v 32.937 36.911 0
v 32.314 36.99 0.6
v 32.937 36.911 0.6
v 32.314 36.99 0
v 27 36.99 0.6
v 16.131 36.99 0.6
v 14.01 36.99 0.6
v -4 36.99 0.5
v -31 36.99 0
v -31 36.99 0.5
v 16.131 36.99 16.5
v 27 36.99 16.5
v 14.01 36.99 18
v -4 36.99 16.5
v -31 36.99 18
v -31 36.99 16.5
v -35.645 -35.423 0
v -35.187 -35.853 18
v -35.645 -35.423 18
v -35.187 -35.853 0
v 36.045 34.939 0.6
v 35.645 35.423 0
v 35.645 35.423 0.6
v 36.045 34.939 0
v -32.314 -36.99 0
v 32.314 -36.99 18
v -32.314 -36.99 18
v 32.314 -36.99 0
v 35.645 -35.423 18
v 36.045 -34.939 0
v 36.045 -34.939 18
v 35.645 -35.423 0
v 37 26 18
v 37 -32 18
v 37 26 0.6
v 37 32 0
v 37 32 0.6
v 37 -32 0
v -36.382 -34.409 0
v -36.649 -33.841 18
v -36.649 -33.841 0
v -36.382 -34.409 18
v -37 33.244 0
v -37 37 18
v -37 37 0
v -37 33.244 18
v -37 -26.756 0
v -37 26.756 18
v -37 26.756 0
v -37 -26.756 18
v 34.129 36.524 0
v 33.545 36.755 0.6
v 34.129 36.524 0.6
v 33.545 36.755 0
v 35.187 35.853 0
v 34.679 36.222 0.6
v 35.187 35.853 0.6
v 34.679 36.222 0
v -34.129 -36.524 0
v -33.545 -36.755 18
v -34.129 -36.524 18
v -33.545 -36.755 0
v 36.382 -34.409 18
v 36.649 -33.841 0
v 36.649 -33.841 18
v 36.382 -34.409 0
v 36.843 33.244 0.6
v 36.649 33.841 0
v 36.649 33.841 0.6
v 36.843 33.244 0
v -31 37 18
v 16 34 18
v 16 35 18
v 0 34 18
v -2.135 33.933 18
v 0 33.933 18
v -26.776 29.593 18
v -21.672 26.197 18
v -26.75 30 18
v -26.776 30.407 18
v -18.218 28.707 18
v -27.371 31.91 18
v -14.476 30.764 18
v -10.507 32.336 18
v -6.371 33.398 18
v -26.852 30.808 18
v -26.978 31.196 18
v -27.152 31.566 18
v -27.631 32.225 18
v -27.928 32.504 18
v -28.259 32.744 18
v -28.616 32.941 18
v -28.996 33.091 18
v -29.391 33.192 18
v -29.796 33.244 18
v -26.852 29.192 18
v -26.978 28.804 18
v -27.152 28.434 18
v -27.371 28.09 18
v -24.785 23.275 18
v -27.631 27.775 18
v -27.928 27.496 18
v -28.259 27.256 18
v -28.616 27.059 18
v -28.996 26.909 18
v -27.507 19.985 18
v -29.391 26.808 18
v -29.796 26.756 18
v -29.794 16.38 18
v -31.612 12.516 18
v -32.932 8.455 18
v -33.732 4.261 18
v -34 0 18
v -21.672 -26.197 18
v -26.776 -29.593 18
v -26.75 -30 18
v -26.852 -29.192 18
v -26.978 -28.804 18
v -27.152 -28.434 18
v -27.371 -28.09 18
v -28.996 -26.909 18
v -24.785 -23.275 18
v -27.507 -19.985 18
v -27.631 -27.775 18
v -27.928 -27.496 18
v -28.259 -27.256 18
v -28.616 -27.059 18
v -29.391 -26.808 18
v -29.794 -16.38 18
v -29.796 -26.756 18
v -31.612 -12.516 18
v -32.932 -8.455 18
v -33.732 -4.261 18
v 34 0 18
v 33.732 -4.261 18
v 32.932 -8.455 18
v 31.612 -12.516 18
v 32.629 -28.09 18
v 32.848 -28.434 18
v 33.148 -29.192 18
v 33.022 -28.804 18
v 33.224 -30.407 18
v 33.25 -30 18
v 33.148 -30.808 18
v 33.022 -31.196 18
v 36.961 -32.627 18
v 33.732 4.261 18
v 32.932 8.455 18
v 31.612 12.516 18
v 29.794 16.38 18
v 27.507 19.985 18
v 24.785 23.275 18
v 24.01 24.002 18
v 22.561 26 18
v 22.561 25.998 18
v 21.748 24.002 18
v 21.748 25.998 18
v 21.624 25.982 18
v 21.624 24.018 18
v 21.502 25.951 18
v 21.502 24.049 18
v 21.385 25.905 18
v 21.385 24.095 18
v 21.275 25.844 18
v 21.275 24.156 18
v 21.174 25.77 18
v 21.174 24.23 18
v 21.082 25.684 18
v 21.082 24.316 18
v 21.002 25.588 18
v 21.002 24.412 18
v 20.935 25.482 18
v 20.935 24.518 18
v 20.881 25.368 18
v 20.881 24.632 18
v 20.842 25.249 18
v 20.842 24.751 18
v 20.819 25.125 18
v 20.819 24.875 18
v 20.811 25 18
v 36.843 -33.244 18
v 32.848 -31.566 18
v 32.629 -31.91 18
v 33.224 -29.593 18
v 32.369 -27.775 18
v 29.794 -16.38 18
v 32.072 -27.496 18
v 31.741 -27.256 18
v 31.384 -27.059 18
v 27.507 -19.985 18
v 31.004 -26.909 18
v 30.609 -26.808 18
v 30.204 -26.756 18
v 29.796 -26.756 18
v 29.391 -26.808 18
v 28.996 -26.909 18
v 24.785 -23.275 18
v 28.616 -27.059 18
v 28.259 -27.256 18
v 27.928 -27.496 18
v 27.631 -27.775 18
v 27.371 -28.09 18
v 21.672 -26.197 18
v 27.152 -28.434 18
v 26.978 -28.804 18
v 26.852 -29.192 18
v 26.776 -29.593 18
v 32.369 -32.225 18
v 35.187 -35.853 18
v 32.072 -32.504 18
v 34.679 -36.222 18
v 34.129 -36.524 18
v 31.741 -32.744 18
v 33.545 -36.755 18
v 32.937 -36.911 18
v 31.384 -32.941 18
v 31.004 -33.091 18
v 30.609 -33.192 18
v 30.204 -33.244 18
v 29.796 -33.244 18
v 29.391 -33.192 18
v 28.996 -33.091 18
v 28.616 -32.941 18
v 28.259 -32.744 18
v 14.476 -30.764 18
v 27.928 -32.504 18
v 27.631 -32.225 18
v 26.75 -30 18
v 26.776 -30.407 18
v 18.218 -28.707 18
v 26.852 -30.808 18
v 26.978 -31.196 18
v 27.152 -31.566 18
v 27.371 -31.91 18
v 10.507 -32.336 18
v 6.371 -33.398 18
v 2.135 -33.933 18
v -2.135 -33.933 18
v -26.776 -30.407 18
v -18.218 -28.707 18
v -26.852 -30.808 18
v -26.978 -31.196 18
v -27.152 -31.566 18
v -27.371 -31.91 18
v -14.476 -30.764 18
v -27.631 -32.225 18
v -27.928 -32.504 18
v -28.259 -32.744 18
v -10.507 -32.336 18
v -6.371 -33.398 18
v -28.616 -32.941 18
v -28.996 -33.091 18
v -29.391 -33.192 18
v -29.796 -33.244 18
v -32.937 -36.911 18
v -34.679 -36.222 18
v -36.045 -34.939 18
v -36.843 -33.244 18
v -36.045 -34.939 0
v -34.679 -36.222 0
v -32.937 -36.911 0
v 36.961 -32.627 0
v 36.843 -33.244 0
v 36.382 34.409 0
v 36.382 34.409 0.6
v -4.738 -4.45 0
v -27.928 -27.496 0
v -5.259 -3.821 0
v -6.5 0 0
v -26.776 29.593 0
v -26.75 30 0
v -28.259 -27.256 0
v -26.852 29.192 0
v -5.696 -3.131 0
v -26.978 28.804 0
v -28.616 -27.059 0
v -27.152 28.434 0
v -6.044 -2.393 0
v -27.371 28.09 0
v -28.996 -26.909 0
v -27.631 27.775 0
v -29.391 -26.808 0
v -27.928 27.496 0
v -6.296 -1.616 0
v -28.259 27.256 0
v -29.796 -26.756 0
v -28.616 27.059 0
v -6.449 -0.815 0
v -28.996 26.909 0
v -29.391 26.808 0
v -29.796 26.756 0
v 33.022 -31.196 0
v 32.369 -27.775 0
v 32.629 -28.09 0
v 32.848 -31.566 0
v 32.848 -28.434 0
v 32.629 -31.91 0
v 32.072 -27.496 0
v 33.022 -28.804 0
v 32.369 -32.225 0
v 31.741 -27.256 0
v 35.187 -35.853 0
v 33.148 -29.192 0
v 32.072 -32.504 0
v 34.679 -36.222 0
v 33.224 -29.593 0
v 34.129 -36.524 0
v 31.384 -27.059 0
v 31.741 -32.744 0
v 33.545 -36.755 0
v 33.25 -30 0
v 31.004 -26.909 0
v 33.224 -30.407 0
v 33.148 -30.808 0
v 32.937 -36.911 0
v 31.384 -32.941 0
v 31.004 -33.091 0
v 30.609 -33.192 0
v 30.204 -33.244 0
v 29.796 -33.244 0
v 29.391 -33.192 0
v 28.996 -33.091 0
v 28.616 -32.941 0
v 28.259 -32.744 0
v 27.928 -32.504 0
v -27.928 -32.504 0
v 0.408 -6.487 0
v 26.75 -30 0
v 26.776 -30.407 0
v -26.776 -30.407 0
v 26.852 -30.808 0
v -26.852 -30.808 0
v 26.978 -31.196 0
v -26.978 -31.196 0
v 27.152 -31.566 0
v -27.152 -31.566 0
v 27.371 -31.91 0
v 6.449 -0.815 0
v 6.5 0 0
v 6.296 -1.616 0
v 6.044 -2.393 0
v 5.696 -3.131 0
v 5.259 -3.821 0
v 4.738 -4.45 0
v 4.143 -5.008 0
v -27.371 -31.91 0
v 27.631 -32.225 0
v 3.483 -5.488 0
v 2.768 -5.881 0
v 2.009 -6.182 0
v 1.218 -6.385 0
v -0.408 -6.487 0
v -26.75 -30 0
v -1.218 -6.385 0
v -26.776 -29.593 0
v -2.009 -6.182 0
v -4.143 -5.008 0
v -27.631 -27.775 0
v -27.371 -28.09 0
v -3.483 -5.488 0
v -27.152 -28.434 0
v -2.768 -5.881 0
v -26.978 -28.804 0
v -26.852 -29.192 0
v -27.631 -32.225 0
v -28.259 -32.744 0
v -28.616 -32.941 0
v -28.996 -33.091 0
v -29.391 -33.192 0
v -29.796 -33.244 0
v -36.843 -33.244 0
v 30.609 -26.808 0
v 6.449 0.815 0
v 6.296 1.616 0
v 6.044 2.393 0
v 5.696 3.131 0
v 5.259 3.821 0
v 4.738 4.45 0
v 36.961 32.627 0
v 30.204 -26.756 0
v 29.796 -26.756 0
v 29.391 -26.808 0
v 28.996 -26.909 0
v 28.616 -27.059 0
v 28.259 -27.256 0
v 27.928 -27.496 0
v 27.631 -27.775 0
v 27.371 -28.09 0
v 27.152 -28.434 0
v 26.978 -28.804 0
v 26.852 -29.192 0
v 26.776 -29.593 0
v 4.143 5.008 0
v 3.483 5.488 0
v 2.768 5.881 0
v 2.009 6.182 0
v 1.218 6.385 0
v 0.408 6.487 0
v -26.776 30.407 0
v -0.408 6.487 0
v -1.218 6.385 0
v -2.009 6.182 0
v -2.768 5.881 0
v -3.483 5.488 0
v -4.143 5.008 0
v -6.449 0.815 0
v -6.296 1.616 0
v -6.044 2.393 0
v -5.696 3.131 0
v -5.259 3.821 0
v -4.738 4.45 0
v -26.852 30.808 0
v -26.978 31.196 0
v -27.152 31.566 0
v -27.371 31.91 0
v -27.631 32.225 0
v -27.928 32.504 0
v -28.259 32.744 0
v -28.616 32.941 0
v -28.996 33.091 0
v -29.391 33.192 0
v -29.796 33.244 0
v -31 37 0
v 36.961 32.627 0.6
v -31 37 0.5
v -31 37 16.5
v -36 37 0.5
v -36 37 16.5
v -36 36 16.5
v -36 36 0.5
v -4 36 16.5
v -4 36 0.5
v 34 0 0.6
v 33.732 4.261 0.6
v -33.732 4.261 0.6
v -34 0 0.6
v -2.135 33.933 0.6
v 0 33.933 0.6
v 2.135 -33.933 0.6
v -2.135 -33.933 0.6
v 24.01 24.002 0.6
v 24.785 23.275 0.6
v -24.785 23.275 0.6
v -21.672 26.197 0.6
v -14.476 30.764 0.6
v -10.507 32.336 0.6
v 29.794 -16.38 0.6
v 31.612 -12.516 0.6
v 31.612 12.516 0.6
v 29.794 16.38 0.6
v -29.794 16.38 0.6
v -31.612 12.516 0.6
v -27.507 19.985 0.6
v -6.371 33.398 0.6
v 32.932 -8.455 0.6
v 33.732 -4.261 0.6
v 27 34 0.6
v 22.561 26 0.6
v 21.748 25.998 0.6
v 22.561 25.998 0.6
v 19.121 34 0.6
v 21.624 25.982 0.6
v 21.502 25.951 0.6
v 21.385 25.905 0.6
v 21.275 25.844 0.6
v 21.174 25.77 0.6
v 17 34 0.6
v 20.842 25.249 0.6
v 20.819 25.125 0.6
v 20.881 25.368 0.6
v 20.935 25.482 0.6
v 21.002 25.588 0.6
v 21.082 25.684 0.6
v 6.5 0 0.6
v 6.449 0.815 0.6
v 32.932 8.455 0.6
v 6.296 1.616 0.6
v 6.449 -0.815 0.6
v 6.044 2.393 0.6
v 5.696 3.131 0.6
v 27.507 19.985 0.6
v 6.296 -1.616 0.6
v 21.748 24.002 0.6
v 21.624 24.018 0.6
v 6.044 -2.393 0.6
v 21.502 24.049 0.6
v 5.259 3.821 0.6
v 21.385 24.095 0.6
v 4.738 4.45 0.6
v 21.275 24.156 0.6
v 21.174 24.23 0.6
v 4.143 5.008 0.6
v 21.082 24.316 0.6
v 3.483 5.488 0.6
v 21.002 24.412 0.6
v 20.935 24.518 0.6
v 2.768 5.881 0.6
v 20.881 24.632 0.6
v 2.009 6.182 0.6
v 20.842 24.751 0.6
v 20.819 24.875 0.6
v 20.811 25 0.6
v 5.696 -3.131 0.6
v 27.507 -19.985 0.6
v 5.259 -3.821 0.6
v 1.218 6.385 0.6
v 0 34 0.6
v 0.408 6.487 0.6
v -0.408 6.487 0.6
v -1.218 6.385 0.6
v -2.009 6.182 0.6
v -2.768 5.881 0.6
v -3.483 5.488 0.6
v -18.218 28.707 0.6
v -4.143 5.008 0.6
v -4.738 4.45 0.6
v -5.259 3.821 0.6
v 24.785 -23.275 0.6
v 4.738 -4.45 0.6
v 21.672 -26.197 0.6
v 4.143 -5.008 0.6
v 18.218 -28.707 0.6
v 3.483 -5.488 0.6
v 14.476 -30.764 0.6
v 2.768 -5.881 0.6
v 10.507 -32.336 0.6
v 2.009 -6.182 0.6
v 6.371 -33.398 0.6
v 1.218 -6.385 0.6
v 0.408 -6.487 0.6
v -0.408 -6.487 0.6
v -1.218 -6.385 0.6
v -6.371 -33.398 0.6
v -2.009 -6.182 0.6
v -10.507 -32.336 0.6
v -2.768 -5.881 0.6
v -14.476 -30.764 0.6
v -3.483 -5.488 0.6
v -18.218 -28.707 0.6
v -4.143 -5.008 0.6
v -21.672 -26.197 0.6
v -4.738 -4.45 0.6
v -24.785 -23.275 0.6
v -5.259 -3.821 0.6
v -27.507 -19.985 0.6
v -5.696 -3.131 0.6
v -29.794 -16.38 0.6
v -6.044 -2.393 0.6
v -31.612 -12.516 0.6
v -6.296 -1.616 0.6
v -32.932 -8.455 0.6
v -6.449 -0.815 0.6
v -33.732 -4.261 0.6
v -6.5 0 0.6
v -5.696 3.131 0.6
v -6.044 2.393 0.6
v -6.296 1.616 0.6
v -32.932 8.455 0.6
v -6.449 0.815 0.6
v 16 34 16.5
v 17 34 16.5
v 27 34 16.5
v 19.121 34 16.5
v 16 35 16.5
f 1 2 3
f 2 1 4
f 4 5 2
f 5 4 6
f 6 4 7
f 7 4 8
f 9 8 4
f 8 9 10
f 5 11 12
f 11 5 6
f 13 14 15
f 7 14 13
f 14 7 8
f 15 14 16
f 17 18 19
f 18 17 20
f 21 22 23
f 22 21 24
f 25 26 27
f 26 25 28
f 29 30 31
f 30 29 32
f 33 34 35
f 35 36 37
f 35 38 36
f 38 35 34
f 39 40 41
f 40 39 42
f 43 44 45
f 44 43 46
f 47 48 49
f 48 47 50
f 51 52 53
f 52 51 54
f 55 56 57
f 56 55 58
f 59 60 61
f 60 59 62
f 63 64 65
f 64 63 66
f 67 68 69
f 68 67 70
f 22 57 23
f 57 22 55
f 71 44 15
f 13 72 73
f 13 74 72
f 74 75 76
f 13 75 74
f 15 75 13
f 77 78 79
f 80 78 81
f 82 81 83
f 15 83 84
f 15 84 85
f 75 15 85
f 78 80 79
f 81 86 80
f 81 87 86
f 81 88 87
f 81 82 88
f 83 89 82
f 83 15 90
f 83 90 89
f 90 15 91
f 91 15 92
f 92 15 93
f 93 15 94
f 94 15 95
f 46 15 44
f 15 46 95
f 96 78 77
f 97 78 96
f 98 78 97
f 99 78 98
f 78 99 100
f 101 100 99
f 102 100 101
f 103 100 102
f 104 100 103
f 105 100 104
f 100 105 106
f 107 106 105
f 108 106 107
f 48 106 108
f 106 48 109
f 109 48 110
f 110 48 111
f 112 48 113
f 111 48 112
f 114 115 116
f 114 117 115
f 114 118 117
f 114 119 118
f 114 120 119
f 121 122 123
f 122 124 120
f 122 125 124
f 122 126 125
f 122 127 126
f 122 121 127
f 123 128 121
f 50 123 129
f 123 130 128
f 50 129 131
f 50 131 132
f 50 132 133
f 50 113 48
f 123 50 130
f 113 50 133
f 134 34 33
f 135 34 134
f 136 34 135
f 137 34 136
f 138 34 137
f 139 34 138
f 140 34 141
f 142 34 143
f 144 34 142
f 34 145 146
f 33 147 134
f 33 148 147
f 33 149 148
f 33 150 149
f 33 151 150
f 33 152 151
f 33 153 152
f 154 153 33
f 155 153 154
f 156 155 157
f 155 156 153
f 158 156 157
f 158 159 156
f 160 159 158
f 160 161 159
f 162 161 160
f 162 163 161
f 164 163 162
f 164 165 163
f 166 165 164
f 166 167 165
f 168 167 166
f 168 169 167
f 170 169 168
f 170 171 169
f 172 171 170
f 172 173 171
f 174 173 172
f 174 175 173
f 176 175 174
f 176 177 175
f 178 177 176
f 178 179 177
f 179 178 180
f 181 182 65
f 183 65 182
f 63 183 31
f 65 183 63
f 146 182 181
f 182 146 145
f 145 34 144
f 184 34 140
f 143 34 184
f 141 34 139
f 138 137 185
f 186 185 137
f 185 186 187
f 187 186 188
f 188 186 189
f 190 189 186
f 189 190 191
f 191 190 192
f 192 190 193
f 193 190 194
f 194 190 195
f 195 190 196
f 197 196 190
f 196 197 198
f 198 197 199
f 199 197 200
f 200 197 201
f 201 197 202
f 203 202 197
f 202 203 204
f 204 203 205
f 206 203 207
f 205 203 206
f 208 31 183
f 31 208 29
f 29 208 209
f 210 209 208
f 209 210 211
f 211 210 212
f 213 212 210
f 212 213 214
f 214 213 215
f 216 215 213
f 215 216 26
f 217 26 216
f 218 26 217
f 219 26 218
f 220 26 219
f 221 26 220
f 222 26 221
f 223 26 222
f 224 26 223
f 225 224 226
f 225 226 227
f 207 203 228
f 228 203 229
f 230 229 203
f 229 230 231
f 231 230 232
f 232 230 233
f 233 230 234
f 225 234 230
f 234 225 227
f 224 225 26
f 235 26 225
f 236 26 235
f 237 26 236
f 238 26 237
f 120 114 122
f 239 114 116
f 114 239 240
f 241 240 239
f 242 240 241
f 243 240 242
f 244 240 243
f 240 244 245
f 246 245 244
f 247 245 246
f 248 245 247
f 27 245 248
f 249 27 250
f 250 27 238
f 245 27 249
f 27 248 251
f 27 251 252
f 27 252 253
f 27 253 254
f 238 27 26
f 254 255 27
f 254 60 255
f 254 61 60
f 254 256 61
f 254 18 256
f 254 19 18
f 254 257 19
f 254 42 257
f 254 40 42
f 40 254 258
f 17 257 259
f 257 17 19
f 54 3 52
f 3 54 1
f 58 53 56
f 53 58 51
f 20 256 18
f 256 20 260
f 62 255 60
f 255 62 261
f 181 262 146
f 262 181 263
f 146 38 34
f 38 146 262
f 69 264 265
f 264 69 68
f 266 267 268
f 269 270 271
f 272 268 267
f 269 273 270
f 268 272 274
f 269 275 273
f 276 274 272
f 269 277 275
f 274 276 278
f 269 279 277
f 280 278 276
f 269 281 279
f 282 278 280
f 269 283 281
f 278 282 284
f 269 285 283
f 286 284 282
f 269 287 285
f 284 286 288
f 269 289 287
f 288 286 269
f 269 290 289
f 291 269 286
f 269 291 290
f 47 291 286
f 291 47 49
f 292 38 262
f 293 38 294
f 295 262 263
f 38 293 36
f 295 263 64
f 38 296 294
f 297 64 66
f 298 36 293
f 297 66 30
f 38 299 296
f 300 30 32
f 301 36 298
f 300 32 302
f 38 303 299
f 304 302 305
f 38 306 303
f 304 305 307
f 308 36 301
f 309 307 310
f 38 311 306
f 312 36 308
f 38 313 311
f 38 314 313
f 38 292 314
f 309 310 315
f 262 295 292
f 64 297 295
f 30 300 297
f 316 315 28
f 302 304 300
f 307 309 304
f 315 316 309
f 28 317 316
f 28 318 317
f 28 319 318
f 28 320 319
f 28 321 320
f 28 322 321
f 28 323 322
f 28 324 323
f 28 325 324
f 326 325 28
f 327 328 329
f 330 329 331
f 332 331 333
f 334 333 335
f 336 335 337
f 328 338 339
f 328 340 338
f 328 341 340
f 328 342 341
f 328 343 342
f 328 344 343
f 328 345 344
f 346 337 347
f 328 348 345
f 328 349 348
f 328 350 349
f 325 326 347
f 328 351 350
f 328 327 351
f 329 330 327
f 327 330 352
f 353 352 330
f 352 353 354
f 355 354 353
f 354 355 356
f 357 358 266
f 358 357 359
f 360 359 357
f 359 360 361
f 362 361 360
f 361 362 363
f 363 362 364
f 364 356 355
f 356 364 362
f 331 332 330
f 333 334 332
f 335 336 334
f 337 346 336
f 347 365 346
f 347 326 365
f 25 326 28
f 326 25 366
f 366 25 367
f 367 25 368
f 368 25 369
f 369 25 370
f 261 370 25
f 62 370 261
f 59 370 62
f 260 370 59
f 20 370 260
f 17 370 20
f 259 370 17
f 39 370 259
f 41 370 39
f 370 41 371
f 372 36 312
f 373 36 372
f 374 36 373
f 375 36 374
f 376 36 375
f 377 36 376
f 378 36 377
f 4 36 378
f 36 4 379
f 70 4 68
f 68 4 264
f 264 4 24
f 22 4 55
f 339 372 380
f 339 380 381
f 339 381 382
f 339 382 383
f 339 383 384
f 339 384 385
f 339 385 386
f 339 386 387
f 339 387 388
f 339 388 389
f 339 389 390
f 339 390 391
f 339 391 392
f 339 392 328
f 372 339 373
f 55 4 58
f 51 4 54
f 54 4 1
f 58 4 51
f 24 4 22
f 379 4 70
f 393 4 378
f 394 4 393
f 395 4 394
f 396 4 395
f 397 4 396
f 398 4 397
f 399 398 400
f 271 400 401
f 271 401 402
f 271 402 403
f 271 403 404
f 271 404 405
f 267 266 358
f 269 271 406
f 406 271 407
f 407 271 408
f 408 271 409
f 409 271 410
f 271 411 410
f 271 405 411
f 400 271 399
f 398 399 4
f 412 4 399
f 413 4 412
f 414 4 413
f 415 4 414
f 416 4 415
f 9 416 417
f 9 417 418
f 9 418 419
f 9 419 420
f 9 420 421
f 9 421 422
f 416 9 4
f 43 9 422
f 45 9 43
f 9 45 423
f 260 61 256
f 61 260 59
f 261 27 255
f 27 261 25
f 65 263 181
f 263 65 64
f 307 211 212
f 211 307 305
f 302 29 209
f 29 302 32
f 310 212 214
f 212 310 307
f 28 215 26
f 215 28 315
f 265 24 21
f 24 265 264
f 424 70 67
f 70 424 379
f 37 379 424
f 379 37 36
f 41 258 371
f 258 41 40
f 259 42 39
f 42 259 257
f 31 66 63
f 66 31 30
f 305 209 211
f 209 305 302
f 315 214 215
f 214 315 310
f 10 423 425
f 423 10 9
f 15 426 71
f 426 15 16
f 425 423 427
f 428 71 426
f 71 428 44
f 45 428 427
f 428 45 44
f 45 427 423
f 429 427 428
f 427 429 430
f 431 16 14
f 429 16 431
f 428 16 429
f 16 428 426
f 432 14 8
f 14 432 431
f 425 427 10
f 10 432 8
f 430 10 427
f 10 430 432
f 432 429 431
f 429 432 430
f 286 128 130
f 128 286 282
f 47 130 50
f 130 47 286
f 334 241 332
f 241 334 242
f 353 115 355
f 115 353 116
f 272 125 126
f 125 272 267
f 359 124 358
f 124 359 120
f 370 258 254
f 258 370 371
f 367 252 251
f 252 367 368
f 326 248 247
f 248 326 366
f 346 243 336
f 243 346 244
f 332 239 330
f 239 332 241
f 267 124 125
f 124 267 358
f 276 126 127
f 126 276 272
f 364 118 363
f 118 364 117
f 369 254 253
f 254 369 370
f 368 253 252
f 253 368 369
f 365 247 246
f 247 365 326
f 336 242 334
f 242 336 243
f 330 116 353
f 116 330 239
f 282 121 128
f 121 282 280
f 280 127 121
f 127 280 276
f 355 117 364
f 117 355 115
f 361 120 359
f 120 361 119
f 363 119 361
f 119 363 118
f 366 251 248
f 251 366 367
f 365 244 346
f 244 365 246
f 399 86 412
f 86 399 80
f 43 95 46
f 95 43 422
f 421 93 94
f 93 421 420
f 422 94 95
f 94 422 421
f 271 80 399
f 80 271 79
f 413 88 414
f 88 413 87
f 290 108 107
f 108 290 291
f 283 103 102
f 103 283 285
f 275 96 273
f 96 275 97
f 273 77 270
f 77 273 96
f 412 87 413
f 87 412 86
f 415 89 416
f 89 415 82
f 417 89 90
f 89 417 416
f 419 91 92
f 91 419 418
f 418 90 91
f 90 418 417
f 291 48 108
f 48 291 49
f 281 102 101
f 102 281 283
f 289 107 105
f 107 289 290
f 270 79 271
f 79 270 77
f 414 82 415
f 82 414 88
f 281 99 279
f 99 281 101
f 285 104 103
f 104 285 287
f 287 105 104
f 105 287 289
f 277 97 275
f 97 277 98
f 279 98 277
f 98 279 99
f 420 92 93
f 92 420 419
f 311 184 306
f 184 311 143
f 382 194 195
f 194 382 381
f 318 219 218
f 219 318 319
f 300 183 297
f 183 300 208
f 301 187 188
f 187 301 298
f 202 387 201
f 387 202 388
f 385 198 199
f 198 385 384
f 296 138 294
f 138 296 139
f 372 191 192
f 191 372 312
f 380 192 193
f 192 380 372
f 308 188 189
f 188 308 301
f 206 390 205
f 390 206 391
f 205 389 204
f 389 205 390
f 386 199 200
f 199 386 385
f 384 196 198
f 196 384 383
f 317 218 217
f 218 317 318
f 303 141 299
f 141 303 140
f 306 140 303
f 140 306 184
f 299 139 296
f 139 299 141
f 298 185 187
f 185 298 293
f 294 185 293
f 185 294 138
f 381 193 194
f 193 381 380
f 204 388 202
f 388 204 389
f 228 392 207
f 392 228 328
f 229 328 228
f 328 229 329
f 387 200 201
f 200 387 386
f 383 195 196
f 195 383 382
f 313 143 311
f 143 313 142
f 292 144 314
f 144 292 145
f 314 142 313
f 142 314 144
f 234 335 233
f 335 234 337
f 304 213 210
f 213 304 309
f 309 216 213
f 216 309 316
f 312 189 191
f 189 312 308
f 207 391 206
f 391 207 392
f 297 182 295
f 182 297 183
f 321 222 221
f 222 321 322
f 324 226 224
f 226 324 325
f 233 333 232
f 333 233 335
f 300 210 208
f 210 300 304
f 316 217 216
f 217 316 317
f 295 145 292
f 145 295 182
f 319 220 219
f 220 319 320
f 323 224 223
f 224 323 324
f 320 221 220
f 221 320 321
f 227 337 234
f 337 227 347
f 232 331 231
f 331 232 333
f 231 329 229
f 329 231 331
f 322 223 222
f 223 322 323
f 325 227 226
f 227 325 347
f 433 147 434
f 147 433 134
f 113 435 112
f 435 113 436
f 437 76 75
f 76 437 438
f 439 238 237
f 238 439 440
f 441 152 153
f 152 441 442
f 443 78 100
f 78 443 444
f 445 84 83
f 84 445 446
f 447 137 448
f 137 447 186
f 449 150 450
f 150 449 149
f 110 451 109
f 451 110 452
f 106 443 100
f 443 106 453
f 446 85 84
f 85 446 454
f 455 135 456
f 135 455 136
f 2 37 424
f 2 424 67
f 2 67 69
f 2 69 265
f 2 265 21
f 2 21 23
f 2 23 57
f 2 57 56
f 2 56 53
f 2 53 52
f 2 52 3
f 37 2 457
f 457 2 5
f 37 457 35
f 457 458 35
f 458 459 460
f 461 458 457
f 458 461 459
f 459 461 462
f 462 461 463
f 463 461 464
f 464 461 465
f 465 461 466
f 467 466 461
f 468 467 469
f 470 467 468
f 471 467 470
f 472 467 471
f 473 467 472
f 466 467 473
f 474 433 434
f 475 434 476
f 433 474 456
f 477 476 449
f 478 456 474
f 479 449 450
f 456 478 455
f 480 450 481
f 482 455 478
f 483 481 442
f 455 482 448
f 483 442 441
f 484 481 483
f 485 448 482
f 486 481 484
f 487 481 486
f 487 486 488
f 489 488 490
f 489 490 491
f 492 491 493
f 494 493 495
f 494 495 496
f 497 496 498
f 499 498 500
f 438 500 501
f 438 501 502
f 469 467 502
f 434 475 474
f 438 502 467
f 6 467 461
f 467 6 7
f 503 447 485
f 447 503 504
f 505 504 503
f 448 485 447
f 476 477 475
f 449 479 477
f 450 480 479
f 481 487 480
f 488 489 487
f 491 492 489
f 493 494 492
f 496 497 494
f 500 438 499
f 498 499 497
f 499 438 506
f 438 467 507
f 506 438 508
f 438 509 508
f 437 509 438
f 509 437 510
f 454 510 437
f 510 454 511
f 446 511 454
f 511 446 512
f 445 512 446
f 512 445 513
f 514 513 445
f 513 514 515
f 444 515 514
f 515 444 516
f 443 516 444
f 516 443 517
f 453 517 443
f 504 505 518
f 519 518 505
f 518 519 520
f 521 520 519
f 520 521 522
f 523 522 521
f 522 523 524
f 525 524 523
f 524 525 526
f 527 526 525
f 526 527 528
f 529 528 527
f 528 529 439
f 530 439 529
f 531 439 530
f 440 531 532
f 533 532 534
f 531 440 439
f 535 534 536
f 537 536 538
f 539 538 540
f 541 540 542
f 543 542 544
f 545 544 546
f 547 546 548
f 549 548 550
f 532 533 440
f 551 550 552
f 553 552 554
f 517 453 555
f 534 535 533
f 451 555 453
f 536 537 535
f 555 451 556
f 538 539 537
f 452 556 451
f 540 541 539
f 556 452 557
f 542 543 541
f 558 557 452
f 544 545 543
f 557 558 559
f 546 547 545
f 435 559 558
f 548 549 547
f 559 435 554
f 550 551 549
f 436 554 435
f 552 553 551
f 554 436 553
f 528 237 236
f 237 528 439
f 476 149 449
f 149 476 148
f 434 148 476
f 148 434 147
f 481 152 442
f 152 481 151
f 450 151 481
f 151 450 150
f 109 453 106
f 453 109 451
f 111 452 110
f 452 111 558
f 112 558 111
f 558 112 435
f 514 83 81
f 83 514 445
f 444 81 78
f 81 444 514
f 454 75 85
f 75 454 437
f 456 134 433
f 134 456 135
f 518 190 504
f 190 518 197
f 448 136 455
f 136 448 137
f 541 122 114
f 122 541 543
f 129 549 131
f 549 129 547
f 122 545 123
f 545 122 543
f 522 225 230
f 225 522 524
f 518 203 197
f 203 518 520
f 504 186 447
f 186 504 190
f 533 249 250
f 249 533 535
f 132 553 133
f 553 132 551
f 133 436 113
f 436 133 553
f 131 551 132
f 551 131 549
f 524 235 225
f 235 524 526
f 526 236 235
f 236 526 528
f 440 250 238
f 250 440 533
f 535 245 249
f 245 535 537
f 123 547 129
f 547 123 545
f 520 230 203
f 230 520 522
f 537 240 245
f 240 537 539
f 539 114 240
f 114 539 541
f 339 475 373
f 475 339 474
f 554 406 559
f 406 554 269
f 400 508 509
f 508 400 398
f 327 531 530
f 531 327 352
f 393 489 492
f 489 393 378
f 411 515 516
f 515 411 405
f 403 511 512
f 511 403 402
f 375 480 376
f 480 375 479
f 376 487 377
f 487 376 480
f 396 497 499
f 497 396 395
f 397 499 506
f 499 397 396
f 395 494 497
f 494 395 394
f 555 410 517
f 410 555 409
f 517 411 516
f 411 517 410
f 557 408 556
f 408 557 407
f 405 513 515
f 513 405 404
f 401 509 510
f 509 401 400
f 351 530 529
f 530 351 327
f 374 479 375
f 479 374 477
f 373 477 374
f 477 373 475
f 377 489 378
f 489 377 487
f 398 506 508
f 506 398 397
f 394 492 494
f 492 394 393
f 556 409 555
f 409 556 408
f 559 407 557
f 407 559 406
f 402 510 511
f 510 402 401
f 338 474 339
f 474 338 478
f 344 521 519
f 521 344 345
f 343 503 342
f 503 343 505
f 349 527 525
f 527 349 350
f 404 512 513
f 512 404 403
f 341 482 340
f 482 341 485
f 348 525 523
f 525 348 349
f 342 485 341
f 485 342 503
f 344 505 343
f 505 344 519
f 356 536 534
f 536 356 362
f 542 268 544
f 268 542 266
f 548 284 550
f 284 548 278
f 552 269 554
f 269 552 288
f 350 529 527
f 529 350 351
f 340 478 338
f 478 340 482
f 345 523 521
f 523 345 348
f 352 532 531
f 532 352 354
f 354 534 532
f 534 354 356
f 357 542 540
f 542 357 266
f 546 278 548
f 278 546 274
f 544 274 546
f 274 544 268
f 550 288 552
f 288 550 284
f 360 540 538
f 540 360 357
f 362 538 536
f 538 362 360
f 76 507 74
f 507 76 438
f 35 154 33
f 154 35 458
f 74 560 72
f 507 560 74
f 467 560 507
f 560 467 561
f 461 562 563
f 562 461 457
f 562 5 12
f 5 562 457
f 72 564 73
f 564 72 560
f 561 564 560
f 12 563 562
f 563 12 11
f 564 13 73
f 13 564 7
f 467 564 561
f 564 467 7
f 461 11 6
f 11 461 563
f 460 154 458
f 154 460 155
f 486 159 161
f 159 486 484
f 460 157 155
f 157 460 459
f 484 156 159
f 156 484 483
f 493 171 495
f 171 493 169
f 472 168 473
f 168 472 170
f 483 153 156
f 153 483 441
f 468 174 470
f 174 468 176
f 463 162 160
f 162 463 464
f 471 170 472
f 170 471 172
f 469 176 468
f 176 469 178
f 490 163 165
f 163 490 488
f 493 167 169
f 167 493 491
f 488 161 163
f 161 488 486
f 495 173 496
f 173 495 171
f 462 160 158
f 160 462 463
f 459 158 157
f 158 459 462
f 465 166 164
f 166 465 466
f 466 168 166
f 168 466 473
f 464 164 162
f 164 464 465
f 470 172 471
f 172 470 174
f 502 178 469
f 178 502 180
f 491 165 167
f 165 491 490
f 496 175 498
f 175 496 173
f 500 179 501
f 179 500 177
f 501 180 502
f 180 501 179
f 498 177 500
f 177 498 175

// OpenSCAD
$fn = 50;


union() {
	difference() {
		union() {
			translate(v = [0, 0, 0]) {
				rotate(a = [0, 0, 0]) {
					hull() {
						translate(v = [-32.0000000000, 32.0000000000, 0]) {
							rotate(a = [0, 0, 0]) {
								translate(v = [0, 0, 0]) {
									rotate(a = [0, 0, 0]) {
										cylinder(h = 18, r = 5);
									}
								}
							}
						}
						translate(v = [32.0000000000, 32.0000000000, 0]) {
							rotate(a = [0, 0, 0]) {
								translate(v = [0, 0, 0]) {
									rotate(a = [0, 0, 0]) {
										cylinder(h = 18, r = 5);
									}
								}
							}
						}
						translate(v = [-32.0000000000, -32.0000000000, 0]) {
							rotate(a = [0, 0, 0]) {
								translate(v = [0, 0, 0]) {
									rotate(a = [0, 0, 0]) {
										cylinder(h = 18, r = 5);
									}
								}
							}
						}
						translate(v = [32.0000000000, -32.0000000000, 0]) {
							rotate(a = [0, 0, 0]) {
								translate(v = [0, 0, 0]) {
									rotate(a = [0, 0, 0]) {
										cylinder(h = 18, r = 5);
									}
								}
							}
						}
					}
				}
			}
			translate(v = [-37.0000000000, 31.0000000000, 0]) {
				rotate(a = [0, 0, 0]) {
					cube(size = [6, 6, 18]);
				}
			}
		}
		union() {
			translate(v = [-36.0000000000, 36.0000000000, 0.5000000000]) {
				rotate(a = [0, 0, 0]) {
					cube(size = [32, 1, 16]);
				}
			}
			translate(v = [-37.5000000000, -30.0000000000, -125]) {
				rotate(a = [0, 0, 0]) {
					hull() {
						translate(v = [7.5000000000, 0, 0]) {
							rotate(a = [0, 0, 0]) {
								translate(v = [0, 0, 0]) {
									rotate(a = [0, 0, 0]) {
										cylinder(h = 250, r = 3.2500000000);
									}
								}
							}
						}
						translate(v = [-7.5000000000, 0, 0]) {
							rotate(a = [0, 0, 0]) {
								translate(v = [0, 0, 0]) {
									rotate(a = [0, 0, 0]) {
										cylinder(h = 250, r = 3.2500000000);
									}
								}
							}
						}
					}
				}
			}
			translate(v = [-37.5000000000, 30.0000000000, -125]) {
				rotate(a = [0, 0, 0]) {
					hull() {
						translate(v = [7.5000000000, 0, 0]) {
							rotate(a = [0, 0, 0]) {
								translate(v = [0, 0, 0]) {
									rotate(a = [0, 0, 0]) {
										cylinder(h = 250, r = 3.2500000000);
									}
								}
							}
						}
						translate(v = [-7.5000000000, 0, 0]) {
							rotate(a = [0, 0, 0]) {
								translate(v = [0, 0, 0]) {
									rotate(a = [0, 0, 0]) {
										cylinder(h = 250, r = 3.2500000000);
									}
								}
							}
						}
					}
				}
			}
			translate(v = [30.0000000000, -30.0000000000, -125.0000000000]) {
				rotate(a = [0, 0, 0]) {
					cylinder(h = 250, r = 3.2500000000);
				}
			}
			translate(v = [0, 0, 0.6000000000]) {
				rotate(a = [0, 0, 0]) {
					cylinder(h = 20.4000000000, r = 34.0000000000);
				}
			}
			translate(v = [0, 0, -9.0000000000]) {
				rotate(a = [0, 0, 0]) {
					cylinder(h = 18, r = 6.5000000000);
				}
			}
			translate(v = [0.0000000000, 26.0000000000, 0.6000000000]) {
				rotate(a = [0, 0, 0]) {
					cube(size = [37.0000000000, 8, 20.4000000000]);
				}
			}
			translate(v = [27.0000000000, 26.0000000000, 0.6000000000]) {
				rotate(a = [0, 0, 0]) {
					cube(size = [10, 11, 20.4000000000]);
				}
			}
			translate(v = [16.0000000000, 26.0000000000, 16.5000000000]) {
				rotate(a = [0, 0, 0]) {
					cube(size = [21, 11, 1.5000000000]);
				}
			}
			translate(v = [13.2500000000, 37.7500000000, 0.6000000000]) {
				rotate(a = [0, 0, -45]) {
					cube(size = [7.5000000000, 1.5000000000, 20.4000000000]);
				}
			}
			translate(v = [15.0610000000, 24.0000000000, 0.6000000000]) {
				rotate(a = [0, 0, 0]) {
					cube(size = [7.5000000000, 2, 17.4000000000]);
				}
			}
		}
	}
	union() {
		translate(v = [24.3110000000, 25.0000000000, 0]) {
			rotate(a = [0, 0, 0]) {
				hull() {
					translate(v = [2.5000000000, 0, 0]) {
						rotate(a = [0, 0, 0]) {
							#translate(v = [0, 0, 0]) {
								rotate(a = [0, 0, 0]) {
									cylinder(h = 18, r = 1.0000000000);
								}
							}
						}
					}
					translate(v = [-2.5000000000, 0, 0]) {
						rotate(a = [0, 0, 0]) {
							#translate(v = [0, 0, 0]) {
								rotate(a = [0, 0, 0]) {
									cylinder(h = 18, r = 1.0000000000);
								}
							}
						}
					}
				}
			}
		}
	}
}
